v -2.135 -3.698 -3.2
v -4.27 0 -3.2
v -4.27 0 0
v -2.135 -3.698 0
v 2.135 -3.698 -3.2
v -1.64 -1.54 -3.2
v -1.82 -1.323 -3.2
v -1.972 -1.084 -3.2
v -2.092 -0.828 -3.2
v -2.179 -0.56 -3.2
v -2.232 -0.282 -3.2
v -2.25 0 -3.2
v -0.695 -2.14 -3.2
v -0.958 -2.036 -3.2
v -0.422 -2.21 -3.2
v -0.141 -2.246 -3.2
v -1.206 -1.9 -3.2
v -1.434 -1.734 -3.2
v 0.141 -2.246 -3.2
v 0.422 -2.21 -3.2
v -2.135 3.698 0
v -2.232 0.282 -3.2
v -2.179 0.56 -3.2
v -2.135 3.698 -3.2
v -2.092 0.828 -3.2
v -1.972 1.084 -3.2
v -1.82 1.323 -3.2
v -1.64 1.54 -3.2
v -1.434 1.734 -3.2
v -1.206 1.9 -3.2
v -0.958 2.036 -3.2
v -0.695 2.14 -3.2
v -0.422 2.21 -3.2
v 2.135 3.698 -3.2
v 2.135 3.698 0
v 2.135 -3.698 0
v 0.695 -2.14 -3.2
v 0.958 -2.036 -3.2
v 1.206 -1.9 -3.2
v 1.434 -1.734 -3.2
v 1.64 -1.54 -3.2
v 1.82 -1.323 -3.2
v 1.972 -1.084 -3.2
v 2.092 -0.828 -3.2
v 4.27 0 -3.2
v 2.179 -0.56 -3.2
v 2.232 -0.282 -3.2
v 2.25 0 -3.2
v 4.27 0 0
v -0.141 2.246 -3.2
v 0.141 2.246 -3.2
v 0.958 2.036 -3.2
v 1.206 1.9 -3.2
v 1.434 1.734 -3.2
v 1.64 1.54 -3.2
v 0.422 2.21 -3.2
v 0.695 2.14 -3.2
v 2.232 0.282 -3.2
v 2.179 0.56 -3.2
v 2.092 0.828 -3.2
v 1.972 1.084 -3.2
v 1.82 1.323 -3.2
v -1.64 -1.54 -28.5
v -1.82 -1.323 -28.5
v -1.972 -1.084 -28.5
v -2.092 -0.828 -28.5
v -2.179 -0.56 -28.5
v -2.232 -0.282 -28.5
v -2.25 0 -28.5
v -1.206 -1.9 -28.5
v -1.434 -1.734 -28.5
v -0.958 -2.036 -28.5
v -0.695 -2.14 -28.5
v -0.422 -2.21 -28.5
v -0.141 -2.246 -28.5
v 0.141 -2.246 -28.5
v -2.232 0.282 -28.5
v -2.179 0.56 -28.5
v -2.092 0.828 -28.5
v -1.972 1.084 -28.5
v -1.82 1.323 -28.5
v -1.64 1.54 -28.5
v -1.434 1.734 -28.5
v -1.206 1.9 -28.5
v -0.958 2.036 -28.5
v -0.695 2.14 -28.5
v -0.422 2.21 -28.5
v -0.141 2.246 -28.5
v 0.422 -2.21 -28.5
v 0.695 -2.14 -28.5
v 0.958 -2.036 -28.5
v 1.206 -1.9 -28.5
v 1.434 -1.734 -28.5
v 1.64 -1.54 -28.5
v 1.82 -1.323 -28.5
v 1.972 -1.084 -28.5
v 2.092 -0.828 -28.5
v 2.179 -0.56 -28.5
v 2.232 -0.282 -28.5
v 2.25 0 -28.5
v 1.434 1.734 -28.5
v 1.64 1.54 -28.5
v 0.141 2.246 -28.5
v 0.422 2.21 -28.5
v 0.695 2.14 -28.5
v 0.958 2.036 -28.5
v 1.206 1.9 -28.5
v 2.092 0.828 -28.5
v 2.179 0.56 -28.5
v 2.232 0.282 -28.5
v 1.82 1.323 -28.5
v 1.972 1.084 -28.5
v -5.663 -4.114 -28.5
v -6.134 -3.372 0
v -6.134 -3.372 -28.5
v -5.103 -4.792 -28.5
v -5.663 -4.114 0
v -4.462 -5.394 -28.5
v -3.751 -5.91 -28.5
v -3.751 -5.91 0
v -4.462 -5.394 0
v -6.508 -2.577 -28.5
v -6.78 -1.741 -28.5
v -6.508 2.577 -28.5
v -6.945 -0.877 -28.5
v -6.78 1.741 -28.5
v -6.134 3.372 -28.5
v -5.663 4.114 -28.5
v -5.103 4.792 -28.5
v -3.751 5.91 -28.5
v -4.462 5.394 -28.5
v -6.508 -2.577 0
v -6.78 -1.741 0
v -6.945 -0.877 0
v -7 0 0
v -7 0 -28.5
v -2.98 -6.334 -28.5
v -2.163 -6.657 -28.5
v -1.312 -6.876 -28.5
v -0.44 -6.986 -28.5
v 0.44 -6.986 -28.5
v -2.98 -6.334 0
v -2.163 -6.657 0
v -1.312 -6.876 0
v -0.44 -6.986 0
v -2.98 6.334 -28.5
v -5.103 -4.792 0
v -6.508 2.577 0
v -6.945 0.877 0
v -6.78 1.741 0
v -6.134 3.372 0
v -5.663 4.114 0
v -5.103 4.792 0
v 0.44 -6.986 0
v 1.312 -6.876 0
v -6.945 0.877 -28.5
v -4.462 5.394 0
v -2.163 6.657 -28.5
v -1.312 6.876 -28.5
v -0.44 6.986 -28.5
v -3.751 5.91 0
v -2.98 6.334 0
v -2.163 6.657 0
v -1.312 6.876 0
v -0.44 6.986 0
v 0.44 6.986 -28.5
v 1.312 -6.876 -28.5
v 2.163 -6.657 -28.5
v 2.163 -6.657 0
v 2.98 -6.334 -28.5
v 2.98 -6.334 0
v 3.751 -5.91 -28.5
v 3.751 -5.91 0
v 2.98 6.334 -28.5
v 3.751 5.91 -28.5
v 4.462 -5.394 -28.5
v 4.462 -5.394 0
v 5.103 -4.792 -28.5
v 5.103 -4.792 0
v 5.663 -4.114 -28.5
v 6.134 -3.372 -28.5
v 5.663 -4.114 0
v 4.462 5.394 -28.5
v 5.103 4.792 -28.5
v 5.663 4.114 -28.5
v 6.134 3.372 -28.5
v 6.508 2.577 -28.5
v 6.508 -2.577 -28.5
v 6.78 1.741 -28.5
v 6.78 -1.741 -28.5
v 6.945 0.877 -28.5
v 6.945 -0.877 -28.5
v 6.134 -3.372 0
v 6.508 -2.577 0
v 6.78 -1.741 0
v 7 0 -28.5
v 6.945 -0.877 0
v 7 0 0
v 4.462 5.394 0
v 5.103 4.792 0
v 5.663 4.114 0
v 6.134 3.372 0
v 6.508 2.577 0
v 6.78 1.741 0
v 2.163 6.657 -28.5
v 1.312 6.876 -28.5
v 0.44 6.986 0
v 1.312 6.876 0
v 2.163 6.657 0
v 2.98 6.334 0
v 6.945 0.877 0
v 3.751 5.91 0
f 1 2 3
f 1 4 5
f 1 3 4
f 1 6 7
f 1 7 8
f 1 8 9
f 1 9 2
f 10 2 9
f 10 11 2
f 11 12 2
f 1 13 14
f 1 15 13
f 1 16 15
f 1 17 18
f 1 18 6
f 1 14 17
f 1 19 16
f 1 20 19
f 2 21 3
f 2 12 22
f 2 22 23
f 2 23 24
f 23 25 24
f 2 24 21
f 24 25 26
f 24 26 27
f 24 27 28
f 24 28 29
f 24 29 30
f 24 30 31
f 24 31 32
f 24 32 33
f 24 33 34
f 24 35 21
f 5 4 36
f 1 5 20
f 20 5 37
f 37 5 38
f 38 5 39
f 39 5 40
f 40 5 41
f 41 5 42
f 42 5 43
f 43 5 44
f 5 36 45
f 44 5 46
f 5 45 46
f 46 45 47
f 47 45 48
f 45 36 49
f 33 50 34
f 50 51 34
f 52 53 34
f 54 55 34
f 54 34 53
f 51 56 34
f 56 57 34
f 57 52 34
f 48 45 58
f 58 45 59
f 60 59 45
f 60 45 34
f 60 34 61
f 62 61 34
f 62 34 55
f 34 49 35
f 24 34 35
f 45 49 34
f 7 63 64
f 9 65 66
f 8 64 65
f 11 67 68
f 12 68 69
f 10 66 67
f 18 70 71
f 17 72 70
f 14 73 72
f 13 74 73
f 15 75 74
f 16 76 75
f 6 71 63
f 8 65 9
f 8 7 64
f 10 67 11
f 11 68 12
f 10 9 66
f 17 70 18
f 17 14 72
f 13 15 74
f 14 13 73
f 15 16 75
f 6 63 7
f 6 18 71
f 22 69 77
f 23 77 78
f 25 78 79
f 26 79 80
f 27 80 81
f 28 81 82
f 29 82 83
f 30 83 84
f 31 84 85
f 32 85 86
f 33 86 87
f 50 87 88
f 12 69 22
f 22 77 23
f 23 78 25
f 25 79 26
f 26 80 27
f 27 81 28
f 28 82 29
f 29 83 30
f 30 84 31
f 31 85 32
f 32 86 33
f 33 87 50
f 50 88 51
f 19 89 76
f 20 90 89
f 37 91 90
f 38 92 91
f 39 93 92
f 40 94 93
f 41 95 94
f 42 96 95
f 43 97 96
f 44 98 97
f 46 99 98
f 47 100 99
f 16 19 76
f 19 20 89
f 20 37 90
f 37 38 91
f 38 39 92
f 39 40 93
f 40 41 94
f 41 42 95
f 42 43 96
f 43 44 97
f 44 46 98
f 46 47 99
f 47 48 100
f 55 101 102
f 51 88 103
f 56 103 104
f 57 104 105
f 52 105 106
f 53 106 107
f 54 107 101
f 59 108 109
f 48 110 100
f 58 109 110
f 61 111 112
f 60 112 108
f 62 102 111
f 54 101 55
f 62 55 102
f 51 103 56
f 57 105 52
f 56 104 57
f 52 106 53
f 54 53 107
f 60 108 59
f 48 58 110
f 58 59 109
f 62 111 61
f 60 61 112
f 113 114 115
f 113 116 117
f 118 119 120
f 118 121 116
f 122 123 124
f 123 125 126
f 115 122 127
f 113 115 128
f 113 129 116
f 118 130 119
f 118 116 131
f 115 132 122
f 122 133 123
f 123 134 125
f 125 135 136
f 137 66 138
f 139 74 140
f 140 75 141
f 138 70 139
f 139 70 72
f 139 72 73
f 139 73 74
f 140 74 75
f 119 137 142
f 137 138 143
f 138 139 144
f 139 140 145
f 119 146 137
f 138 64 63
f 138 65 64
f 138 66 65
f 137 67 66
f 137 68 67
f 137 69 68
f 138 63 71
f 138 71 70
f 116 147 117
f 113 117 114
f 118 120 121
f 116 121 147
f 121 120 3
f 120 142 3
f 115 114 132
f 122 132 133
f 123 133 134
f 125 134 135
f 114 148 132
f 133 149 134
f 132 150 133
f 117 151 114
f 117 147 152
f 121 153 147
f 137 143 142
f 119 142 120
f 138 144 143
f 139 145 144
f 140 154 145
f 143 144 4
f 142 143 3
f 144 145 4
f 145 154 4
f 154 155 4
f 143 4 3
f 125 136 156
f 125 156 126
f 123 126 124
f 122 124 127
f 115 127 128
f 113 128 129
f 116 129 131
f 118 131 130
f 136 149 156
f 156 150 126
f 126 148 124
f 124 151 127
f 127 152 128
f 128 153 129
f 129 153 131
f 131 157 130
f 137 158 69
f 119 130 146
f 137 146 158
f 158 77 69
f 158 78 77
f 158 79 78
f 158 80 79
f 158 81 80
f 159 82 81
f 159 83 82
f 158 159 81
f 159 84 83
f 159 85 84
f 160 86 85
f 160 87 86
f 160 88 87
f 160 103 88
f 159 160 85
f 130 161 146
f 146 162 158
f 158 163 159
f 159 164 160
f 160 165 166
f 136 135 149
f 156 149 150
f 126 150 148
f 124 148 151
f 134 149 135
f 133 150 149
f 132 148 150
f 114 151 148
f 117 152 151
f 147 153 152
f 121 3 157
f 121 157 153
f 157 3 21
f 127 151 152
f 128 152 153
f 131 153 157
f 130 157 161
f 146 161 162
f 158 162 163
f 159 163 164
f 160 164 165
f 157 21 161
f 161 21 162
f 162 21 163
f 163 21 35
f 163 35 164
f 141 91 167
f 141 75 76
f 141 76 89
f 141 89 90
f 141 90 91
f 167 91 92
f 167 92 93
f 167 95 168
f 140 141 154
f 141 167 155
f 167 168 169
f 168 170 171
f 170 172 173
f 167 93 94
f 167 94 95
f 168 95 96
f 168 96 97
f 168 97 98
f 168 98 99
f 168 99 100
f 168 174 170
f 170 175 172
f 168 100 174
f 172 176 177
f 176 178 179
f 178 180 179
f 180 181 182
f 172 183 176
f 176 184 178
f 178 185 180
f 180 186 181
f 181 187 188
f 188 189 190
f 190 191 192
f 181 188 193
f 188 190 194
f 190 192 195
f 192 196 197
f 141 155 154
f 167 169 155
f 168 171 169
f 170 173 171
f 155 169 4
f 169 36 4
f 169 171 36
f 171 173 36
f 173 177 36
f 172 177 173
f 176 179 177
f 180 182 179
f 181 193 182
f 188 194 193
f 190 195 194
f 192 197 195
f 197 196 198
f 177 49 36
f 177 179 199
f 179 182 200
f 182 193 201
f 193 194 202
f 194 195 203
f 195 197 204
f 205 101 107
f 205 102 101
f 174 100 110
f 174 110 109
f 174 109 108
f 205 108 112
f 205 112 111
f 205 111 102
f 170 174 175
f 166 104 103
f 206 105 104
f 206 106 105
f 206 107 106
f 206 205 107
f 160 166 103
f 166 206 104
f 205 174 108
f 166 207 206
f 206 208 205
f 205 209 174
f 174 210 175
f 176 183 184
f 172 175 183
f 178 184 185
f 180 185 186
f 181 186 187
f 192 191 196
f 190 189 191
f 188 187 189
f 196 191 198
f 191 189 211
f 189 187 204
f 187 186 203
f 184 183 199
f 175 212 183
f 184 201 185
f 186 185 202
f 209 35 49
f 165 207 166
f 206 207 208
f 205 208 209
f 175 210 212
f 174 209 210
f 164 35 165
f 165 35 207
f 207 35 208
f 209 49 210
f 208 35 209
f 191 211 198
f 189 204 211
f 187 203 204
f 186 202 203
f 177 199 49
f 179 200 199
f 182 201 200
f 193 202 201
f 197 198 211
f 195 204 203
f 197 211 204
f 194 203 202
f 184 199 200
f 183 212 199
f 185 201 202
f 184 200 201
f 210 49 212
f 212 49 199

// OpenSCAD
$fn = 50;

difference() {
	union() {
		translate(v = [0, 0, -28.5]) {
			cylinder(h = 28.5, r = 7.0);
		}
	}
	union() {
		translate(v = [0, 0, 0]) {
			rotate(a = [0, 0, 0]) {
				difference() {
					union() {
						translate(v = [0, 0, -3.2]) {
							linear_extrude(height = 3.2) {
								polygon(points = [[4.2698, 0.0], [2.1349000000000005, 3.697755269078796], [-2.134899999999999, 3.6977552690787965], [-4.2698, 5.228996902999369e-16], [-2.134900000000002, -3.6977552690787956], [2.1348999999999974, -3.697755269078798]]);
							}
						}
					}
					union();
				}
			}
		}
		#translate(v = [0, 0, -100.0]) {
			cylinder(h = 200, r = 2.25);
		}
	}
}
